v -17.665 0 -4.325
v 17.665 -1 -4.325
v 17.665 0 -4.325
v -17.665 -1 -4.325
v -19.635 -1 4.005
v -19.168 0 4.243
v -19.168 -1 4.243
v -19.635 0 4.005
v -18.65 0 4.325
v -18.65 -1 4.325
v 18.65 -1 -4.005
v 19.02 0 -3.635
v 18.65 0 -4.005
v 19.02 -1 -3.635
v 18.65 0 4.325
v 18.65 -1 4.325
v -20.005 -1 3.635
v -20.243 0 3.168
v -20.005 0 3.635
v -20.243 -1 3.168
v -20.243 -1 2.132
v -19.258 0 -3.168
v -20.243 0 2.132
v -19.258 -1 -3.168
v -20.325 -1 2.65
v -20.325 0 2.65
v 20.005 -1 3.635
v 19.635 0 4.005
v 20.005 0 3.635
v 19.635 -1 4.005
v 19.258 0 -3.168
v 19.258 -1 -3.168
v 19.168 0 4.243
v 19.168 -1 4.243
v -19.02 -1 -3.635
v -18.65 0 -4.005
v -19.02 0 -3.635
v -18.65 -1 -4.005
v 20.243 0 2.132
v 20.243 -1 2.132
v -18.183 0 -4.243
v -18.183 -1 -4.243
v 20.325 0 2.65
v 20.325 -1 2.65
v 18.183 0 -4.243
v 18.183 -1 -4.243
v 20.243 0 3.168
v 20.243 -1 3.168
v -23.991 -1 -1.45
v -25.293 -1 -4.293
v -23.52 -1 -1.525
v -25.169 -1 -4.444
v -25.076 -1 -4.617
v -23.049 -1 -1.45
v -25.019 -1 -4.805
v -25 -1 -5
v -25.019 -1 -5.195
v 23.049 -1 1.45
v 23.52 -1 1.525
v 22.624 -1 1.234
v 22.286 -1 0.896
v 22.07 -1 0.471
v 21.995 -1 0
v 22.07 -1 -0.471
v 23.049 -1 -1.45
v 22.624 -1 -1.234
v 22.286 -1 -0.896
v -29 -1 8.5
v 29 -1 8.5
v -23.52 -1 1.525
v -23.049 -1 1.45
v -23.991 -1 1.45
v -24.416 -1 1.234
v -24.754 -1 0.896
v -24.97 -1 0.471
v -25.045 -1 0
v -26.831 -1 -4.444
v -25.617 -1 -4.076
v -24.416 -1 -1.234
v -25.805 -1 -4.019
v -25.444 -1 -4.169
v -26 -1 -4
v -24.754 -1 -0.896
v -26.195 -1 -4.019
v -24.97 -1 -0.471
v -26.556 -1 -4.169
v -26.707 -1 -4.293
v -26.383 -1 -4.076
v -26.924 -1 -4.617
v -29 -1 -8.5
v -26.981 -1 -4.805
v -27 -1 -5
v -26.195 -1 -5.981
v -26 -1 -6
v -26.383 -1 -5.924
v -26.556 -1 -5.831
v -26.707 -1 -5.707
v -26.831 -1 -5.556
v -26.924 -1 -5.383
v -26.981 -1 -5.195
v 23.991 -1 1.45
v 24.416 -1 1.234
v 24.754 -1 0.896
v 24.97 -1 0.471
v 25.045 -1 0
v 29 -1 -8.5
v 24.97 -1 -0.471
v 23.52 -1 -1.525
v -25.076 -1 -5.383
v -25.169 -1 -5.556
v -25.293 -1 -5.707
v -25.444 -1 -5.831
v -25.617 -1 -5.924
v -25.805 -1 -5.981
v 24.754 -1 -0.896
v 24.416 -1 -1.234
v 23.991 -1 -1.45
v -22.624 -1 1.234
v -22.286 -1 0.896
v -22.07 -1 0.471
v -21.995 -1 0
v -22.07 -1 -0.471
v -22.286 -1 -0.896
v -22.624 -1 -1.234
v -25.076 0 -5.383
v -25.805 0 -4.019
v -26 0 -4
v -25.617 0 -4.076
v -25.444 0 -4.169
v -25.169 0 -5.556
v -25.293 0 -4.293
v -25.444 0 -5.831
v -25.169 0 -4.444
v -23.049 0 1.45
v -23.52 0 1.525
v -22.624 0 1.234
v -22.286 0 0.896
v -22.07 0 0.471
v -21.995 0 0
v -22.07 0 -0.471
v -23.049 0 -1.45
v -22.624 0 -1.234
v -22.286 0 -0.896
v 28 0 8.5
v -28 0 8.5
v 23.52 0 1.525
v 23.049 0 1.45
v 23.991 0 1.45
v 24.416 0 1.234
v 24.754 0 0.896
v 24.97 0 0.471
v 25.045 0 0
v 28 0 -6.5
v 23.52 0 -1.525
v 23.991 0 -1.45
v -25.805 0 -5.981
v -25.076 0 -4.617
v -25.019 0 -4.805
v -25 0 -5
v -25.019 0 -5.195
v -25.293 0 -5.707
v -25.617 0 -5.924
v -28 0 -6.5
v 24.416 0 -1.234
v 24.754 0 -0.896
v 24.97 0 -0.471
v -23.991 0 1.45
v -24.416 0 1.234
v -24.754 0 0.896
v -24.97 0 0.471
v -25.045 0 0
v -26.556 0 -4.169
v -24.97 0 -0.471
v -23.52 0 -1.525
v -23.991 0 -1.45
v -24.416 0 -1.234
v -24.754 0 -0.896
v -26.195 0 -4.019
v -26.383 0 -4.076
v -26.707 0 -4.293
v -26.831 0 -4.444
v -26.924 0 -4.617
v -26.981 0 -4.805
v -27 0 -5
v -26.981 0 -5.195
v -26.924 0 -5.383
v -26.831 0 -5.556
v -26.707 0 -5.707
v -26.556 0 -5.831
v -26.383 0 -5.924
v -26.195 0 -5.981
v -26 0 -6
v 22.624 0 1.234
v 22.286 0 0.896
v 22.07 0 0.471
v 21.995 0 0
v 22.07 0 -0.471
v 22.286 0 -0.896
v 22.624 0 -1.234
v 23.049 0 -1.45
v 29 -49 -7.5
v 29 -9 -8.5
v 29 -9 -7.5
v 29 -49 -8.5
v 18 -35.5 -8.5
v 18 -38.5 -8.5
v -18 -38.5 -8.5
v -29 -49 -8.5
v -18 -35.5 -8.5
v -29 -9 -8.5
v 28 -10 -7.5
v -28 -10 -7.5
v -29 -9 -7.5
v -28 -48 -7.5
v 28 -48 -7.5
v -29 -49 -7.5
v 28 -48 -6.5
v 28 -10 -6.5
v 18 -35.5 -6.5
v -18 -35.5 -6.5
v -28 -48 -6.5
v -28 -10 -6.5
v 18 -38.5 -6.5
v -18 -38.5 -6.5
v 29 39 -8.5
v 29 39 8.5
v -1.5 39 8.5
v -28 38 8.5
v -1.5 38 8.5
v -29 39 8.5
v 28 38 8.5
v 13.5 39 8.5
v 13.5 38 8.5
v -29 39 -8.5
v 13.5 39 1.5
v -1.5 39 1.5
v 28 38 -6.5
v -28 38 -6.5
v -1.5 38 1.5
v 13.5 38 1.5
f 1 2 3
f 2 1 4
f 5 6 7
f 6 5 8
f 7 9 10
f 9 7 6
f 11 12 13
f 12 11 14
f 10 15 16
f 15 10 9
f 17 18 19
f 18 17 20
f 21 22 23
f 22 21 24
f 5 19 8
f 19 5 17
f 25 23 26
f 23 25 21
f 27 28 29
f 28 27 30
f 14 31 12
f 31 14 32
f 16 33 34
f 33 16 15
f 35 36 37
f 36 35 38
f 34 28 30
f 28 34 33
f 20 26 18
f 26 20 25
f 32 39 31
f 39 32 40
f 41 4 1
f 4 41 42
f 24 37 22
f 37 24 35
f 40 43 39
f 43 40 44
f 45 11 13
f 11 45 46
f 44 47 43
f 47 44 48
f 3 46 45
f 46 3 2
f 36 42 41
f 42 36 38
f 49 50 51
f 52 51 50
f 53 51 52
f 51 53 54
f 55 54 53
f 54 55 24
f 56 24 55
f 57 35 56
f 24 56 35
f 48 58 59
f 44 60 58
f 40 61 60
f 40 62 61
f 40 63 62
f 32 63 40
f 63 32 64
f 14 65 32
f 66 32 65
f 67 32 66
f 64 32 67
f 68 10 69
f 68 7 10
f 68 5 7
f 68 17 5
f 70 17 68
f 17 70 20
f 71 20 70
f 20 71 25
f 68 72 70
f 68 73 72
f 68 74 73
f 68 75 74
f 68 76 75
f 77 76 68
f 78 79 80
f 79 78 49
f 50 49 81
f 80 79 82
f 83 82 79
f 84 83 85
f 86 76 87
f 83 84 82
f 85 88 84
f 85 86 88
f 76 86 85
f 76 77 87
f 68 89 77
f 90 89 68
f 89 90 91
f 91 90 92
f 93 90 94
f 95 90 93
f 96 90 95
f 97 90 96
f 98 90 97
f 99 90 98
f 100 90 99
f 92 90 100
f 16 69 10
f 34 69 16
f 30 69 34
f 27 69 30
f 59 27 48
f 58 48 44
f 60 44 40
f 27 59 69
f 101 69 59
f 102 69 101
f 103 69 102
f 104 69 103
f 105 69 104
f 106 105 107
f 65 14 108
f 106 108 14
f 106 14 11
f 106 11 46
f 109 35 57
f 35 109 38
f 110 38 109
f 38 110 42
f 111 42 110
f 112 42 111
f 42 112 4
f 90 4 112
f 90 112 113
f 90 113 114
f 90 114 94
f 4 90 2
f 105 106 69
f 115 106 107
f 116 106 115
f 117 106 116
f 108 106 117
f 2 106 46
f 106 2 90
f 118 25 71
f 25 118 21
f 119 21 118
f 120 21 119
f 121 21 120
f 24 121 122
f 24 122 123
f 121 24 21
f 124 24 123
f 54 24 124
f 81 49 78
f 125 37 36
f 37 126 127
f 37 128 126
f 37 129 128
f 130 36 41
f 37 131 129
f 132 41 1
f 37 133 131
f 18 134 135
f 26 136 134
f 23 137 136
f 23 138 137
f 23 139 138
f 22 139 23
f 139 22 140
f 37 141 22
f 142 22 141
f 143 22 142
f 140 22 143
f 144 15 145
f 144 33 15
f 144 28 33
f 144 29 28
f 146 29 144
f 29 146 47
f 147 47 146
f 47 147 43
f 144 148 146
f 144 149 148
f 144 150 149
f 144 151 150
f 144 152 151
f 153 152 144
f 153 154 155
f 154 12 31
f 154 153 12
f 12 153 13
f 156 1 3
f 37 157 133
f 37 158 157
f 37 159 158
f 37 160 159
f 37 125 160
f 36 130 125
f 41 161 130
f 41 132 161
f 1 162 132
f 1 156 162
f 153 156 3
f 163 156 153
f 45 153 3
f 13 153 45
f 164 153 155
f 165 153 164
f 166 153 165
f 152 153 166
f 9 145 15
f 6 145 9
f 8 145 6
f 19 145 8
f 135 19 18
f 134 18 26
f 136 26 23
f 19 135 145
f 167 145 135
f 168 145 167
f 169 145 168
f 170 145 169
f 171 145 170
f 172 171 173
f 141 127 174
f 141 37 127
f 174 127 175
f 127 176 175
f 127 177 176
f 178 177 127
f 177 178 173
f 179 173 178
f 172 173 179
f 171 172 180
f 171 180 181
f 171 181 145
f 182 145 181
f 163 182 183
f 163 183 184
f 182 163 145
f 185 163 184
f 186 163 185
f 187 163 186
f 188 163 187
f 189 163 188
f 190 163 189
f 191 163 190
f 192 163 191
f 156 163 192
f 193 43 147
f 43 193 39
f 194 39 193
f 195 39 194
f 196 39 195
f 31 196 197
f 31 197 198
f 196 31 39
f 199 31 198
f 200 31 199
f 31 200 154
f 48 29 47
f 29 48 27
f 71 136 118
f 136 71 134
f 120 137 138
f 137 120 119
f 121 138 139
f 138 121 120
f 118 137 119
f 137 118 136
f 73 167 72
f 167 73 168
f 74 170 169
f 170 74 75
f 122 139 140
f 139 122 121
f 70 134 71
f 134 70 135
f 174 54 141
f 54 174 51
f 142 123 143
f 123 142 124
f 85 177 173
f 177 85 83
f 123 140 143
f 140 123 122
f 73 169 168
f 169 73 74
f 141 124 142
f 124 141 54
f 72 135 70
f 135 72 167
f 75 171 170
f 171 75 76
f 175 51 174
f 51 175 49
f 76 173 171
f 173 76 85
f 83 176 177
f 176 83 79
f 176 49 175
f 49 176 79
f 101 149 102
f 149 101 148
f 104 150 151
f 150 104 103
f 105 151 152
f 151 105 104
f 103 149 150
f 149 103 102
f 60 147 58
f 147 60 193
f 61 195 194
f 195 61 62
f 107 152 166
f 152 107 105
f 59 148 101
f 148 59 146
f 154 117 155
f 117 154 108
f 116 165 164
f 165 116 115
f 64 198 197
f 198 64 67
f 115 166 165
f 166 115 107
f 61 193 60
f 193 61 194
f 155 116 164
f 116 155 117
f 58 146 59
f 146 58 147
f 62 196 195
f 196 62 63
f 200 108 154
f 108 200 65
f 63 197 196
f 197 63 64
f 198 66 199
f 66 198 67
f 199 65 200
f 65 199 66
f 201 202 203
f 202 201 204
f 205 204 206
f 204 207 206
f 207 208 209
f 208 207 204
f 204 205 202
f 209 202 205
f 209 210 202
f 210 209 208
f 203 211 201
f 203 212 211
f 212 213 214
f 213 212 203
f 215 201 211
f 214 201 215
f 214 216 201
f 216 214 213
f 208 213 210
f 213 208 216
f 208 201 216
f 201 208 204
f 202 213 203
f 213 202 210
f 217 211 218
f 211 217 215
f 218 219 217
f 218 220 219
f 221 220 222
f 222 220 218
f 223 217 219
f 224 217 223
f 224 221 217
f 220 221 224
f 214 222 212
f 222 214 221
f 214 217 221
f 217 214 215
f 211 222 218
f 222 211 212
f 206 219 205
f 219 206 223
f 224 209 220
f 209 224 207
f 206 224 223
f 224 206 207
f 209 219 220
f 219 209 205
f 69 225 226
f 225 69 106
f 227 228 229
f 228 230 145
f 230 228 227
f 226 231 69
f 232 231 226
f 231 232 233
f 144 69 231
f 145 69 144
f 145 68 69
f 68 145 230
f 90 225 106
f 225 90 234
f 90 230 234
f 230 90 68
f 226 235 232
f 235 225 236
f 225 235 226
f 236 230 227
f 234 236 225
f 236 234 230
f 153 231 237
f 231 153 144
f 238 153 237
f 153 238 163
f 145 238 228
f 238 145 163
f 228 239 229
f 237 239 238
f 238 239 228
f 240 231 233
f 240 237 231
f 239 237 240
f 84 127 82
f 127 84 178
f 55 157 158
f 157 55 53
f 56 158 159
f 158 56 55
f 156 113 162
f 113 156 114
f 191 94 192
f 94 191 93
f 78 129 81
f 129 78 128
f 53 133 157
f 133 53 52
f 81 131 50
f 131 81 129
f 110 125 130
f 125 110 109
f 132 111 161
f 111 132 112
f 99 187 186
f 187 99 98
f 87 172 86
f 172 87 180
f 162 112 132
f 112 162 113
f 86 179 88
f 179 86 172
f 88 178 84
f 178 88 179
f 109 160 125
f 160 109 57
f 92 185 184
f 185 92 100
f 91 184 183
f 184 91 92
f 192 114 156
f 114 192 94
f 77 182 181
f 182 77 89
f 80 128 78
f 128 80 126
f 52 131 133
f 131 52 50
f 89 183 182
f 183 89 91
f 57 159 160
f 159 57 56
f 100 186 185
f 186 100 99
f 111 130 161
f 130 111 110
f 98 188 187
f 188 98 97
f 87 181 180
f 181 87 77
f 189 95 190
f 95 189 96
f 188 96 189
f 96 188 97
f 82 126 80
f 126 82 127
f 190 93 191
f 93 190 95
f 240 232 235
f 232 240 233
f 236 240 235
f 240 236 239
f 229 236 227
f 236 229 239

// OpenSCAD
module dsub() {
    $fn=20;

    function db_conn_table(idx) =
    // b, d, f, k
    idx == "db9F" ? [12.50,11.10,6.53,2.11] :
    idx == "db9R" ? [12.50,11.10,5.72,3.35] :
    idx == "db15F" ? [16.66,15.27,6.53,2.11] :
    idx == "db15R" ? [16.66,15.27,5.72,3.35] :
    idx == "db25F" ? [23.52,22.15,6.53,2.11] :
    idx == "db25R" ? [23.52,22.0,6.0,3.35] :
    idx == "db37F" ? [31.75,29.54,6.53,2.11] :
    idx == "db37R" ? [31.75,29.54,5.72,3.35] :
    idx == "db50F" ? [30.56,29.19,7.93,2.11] :
    idx == "db50R" ? [30.56,28.17,7.06,3.35] :
    "Error";

    conn = "db25R";

    conn_dimensions = db_conn_table(conn);
    if(conn_dimensions == "Error") {
    echo(str("connector not found"));
    }

    b = db_conn_table(conn)[0];
    d = db_conn_table(conn)[1];
    f = db_conn_table(conn)[2];
    k = db_conn_table(conn)[3];

    //b = 16.66;
    //d = 14.40;
    //f = 5.72;
    //k = 3.35;

    cut_angle = 10;
    mounting_hole = 3.05;

    hull(){
    //Upper Left
    translate([-(d-k),(f-k),0])
    cylinder(1, d=k, center=false);
    //Upper Right
    translate([(d-k),(f-k),0])
    cylinder(h=1, d=k);
    //Lower Left
    translate([-(d-k)+cos(cut_angle),-(f-k),0])
    cylinder(h=1, d=k);
    //Lower Right
    translate([(d-k)-cos(cut_angle),-(f-k),0])
    cylinder(h=1, d=k);
    }

    // Mounting Holes
    translate([-b,0,0])
    cylinder(h=1, d=mounting_hole);
    translate([b,0,0])
    cylinder(h=1, d=mounting_hole);
}



difference() {
    translate([0, 19, 0]) {
        cube([58, 40, 17], center=true);
    }

    translate([0, 19, 2]) {
        cube([58-2, 40-2, 17], center=true);
    }

    rotate([90, 0, 0]) {
        dsub();
    }
    translate([-26, 5, -5]) {
        rotate([90, 0, 0]) {
            cylinder(d=2, h=10, $fn=32);
        }
    }
    translate([6, 40, 6]) {
        cube([15, 15, 9], center=true);
    }
}

rotate([180, 0, 0]) {

    difference() {
        union() {
            translate([0, 29, 8]) {
                cube([58, 40, 1], center=true);
            }
            translate([0, 29, 8-1]) {
                cube([58-2, 40-2, 1], center=true);
            }
        }
        translate([0, 37, 8]) {
            cube([36, 3, 10], center=true);
        }
    }


}
